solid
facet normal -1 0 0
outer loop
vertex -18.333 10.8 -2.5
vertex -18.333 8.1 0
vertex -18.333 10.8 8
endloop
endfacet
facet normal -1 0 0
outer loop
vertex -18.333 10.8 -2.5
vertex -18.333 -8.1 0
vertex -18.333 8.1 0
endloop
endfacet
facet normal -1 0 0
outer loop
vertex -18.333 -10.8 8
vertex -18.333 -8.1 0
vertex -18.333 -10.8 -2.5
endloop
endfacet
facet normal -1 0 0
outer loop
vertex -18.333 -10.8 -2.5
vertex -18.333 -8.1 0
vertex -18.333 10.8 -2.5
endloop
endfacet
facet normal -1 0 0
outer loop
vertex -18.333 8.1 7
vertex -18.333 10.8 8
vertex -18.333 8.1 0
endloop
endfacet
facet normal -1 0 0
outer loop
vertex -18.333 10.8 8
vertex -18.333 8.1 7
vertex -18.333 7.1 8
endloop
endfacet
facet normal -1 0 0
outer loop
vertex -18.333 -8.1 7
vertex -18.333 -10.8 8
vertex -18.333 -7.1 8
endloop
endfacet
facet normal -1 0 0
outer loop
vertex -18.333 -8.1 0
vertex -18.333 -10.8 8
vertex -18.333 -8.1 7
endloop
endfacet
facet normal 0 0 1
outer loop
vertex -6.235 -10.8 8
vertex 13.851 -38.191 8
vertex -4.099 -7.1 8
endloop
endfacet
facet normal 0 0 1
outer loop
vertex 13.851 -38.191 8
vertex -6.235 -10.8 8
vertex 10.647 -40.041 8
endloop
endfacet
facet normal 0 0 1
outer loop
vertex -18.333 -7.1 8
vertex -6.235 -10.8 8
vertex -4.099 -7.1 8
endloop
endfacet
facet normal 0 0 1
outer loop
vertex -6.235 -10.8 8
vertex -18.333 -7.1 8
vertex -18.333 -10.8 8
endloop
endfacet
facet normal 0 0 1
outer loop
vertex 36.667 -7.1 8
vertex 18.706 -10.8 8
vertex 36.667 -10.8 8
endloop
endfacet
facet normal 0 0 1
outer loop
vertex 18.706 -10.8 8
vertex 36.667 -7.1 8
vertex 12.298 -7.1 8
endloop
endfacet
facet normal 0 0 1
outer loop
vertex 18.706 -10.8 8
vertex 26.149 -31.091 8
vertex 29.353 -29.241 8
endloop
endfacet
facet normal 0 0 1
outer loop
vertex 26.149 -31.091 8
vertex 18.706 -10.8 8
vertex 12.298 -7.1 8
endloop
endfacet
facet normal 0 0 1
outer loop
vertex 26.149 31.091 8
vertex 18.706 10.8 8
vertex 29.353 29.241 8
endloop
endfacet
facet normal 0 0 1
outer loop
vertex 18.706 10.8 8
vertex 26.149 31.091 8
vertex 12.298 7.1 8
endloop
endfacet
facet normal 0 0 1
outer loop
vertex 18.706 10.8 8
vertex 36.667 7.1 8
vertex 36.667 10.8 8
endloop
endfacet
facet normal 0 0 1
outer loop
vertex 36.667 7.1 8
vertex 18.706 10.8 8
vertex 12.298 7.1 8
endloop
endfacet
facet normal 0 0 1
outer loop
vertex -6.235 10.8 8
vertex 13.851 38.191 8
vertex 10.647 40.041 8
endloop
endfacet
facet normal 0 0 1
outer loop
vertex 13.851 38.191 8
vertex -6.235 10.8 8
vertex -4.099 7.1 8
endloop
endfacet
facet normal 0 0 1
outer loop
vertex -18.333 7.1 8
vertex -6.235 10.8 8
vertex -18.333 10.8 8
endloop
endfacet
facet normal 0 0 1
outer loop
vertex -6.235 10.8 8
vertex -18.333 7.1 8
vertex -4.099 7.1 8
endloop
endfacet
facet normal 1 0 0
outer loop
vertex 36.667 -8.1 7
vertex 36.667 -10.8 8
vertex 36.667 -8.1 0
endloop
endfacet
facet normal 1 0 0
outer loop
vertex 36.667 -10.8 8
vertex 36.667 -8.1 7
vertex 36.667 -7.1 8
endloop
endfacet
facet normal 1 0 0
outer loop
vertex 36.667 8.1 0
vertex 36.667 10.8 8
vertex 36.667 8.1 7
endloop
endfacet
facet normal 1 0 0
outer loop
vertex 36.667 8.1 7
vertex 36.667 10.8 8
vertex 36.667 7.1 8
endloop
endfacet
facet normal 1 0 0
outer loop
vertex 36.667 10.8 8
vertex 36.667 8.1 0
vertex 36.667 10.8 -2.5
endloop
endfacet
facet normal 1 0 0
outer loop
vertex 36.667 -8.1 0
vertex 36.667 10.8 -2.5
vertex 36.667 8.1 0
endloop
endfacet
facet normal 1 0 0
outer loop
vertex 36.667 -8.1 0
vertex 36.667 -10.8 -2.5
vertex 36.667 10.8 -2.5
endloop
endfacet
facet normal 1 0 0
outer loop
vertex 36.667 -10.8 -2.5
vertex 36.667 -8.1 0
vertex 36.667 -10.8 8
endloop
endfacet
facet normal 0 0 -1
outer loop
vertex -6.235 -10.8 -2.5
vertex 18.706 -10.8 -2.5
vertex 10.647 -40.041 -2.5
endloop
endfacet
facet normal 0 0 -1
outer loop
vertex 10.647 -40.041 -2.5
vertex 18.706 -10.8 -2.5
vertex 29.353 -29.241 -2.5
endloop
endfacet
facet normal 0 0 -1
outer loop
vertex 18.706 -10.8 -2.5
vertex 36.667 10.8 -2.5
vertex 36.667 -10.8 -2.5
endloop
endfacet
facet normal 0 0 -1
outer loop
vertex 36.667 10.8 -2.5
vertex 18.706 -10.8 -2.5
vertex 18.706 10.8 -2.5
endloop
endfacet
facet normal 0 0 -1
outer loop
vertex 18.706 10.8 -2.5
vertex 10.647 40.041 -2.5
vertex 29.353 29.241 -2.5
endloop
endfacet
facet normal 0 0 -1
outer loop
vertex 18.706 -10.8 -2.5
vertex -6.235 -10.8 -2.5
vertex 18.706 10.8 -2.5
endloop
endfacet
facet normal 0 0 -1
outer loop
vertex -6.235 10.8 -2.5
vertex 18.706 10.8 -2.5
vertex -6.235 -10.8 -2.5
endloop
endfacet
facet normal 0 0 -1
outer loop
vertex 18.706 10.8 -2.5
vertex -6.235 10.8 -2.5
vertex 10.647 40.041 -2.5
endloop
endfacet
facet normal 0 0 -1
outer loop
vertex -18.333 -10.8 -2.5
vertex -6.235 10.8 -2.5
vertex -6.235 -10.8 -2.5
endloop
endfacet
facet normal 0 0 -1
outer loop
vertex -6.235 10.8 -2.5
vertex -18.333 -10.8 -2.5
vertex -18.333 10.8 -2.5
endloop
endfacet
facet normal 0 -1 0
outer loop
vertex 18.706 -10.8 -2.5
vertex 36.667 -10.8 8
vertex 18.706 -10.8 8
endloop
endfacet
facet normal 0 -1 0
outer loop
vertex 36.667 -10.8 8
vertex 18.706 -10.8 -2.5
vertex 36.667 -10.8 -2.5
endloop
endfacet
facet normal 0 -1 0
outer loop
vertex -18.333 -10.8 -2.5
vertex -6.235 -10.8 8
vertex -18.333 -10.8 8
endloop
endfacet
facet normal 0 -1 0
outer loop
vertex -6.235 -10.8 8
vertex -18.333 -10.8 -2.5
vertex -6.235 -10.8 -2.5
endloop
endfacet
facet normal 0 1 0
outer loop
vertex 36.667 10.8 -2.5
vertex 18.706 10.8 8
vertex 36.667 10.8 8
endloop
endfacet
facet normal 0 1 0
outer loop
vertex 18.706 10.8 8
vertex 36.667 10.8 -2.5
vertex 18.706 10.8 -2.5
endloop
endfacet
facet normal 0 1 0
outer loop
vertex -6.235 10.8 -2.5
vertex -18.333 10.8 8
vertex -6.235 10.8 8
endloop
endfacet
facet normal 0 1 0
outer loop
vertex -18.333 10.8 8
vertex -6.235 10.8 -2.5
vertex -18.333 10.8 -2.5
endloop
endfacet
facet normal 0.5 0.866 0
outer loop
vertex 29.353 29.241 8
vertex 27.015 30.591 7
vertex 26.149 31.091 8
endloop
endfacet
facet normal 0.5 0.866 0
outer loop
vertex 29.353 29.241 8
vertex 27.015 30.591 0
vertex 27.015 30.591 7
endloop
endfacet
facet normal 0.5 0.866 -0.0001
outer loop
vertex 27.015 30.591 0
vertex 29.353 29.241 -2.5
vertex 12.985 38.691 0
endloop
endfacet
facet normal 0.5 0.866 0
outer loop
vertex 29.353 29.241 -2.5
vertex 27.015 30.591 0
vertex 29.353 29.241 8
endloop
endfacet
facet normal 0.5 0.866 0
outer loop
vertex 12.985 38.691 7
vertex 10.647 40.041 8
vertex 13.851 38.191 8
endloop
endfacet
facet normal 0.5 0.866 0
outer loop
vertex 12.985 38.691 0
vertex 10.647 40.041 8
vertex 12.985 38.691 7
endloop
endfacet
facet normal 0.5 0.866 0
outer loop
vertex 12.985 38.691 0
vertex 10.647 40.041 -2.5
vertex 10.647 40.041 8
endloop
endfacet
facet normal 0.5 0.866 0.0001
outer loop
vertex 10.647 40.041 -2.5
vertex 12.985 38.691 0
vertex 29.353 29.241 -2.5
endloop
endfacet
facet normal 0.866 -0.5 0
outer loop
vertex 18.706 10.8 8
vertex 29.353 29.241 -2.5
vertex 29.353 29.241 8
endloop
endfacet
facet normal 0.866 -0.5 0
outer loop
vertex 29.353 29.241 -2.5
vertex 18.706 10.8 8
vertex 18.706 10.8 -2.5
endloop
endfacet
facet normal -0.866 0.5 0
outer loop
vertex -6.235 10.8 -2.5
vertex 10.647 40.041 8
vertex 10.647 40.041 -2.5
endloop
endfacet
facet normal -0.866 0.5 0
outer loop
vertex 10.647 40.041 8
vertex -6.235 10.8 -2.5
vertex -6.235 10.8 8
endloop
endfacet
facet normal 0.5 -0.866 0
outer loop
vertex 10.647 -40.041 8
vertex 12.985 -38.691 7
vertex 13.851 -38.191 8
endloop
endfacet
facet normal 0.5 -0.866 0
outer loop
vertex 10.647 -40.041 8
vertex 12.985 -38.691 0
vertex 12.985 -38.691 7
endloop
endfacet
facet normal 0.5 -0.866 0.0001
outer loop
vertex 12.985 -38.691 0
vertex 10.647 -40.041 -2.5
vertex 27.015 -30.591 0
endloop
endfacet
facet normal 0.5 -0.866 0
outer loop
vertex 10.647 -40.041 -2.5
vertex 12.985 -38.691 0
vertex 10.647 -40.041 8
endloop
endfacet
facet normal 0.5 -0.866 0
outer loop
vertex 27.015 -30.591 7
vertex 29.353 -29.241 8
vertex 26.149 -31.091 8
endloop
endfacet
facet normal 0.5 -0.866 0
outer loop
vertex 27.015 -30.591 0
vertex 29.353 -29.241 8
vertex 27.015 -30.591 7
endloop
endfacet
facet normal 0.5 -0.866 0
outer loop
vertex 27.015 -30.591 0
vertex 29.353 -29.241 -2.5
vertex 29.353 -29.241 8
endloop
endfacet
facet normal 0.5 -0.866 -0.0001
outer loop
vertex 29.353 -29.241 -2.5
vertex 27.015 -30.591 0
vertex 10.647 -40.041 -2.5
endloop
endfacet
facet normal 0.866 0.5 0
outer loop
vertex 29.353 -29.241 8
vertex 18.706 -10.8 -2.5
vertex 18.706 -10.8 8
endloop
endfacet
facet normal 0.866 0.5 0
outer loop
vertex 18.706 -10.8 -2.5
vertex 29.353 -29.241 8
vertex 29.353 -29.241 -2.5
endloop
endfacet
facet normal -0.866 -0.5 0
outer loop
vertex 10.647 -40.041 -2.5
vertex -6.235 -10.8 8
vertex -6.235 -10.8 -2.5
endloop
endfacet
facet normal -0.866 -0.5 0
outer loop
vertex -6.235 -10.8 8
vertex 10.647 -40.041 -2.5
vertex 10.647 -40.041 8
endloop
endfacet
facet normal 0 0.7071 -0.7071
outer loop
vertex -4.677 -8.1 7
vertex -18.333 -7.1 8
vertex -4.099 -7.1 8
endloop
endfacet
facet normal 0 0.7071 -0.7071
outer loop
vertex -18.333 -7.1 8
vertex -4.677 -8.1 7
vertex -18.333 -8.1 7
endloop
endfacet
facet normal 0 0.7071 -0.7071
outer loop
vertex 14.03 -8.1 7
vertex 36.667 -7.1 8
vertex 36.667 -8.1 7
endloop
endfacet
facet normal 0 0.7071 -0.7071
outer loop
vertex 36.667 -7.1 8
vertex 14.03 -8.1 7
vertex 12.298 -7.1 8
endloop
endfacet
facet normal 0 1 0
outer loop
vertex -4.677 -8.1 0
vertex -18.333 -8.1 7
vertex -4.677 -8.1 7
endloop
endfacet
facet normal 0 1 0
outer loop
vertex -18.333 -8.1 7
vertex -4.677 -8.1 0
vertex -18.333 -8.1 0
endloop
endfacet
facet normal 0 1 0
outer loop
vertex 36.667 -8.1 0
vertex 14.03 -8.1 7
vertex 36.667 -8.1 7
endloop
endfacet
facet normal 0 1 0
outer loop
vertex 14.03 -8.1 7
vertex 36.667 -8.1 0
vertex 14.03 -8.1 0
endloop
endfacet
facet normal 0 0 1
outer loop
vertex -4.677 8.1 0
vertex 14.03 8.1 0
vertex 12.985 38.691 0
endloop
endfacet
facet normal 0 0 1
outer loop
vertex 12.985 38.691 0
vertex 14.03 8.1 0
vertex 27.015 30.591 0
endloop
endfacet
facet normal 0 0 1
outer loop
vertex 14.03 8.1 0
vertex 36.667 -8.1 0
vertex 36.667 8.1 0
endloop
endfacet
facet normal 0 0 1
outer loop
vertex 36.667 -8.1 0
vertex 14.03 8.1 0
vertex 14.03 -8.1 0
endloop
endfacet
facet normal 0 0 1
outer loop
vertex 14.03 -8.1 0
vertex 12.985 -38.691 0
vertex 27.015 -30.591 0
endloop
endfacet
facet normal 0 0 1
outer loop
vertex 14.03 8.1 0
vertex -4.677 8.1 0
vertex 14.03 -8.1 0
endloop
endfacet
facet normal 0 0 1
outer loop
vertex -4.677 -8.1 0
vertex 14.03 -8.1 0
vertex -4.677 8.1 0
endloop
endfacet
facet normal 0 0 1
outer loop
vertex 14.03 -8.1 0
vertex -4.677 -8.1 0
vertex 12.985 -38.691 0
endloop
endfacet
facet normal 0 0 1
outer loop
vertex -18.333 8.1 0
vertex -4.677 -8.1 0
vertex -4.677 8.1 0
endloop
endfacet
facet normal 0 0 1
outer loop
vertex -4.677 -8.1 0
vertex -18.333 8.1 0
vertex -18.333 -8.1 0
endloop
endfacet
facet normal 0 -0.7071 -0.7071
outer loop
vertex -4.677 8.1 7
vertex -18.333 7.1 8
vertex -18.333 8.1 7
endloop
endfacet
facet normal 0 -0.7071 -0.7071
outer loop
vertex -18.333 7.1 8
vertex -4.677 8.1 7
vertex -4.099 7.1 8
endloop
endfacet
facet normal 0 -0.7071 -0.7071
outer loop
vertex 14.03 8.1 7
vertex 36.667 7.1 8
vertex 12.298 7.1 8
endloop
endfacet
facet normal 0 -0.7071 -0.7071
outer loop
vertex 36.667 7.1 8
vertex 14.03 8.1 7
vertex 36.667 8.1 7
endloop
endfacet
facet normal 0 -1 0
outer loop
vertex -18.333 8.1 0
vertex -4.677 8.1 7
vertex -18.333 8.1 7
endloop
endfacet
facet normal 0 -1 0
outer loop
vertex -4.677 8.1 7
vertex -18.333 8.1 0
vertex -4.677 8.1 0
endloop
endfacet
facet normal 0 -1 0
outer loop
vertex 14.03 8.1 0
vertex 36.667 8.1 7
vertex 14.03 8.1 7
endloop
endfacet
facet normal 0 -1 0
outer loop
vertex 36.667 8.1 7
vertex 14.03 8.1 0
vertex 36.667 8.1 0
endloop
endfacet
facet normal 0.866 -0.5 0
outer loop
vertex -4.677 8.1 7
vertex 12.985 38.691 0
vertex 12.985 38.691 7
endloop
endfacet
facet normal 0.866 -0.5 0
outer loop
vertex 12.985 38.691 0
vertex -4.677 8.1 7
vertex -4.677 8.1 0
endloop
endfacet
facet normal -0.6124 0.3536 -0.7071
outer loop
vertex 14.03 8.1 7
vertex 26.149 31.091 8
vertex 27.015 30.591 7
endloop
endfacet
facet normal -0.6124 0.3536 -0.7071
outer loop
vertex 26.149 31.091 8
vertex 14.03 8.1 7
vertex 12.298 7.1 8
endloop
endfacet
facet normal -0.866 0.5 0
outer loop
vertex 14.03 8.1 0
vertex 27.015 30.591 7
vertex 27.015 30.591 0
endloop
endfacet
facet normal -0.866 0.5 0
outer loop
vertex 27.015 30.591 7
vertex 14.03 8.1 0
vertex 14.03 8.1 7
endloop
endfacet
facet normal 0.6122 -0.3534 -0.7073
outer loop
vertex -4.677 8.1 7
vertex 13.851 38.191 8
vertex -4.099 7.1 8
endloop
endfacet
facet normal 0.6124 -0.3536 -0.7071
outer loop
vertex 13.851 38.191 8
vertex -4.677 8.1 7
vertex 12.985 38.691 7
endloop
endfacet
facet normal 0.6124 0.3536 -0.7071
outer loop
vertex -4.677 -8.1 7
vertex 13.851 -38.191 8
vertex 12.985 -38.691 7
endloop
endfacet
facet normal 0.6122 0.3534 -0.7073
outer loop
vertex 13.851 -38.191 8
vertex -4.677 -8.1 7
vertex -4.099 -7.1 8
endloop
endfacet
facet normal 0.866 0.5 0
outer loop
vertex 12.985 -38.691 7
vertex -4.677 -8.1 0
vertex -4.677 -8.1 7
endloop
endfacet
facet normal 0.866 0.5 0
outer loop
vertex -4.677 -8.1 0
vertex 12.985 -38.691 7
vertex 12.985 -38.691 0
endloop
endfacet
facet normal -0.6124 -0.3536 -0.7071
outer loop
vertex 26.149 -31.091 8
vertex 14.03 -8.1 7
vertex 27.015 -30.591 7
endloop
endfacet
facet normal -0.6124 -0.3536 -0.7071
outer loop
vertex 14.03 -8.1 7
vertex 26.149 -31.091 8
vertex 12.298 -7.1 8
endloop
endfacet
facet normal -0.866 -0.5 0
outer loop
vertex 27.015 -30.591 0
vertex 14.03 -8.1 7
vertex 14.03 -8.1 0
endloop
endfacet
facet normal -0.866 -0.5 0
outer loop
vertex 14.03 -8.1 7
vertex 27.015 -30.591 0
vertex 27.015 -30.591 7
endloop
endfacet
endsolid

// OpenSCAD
w=16.2; // Al stripe width
t=7.0; // Al thickness
bt=2.5; // Bottom thickness
ww=2.7; // wall width
tt=1.0; // top overhang
ml=55; // main (central) section length
rl=40; // ray section length

ofs=0;
// ofs=-w*sin(60);

module outer(l)
{
translate([0, -w/2-ww, -bt]) cube([l, w+ww*2, bt+t+tt]);
}

module inner(l, ofs)
{
translate([-ofs,0,0]) hull()
{
  translate([-0.1, -w/2, 0]) cube([l+0.2, w, t]);
  translate([-0.1, -w/2+tt+1, 0]) cube([l+0.2, w-tt*2-2, t+tt+1]);
}
}

difference()
{
union()
{
translate([-ml/3,0,0]) outer(ml);
rotate([0,0,60])outer(rl);
rotate([0,0,-60])outer(rl);
}
translate([0,0,0]) inner(ml, ml/3);
rotate([0,0,60]) inner(rl, ofs);
rotate([0,0,-60]) inner(rl, ofs);
}
